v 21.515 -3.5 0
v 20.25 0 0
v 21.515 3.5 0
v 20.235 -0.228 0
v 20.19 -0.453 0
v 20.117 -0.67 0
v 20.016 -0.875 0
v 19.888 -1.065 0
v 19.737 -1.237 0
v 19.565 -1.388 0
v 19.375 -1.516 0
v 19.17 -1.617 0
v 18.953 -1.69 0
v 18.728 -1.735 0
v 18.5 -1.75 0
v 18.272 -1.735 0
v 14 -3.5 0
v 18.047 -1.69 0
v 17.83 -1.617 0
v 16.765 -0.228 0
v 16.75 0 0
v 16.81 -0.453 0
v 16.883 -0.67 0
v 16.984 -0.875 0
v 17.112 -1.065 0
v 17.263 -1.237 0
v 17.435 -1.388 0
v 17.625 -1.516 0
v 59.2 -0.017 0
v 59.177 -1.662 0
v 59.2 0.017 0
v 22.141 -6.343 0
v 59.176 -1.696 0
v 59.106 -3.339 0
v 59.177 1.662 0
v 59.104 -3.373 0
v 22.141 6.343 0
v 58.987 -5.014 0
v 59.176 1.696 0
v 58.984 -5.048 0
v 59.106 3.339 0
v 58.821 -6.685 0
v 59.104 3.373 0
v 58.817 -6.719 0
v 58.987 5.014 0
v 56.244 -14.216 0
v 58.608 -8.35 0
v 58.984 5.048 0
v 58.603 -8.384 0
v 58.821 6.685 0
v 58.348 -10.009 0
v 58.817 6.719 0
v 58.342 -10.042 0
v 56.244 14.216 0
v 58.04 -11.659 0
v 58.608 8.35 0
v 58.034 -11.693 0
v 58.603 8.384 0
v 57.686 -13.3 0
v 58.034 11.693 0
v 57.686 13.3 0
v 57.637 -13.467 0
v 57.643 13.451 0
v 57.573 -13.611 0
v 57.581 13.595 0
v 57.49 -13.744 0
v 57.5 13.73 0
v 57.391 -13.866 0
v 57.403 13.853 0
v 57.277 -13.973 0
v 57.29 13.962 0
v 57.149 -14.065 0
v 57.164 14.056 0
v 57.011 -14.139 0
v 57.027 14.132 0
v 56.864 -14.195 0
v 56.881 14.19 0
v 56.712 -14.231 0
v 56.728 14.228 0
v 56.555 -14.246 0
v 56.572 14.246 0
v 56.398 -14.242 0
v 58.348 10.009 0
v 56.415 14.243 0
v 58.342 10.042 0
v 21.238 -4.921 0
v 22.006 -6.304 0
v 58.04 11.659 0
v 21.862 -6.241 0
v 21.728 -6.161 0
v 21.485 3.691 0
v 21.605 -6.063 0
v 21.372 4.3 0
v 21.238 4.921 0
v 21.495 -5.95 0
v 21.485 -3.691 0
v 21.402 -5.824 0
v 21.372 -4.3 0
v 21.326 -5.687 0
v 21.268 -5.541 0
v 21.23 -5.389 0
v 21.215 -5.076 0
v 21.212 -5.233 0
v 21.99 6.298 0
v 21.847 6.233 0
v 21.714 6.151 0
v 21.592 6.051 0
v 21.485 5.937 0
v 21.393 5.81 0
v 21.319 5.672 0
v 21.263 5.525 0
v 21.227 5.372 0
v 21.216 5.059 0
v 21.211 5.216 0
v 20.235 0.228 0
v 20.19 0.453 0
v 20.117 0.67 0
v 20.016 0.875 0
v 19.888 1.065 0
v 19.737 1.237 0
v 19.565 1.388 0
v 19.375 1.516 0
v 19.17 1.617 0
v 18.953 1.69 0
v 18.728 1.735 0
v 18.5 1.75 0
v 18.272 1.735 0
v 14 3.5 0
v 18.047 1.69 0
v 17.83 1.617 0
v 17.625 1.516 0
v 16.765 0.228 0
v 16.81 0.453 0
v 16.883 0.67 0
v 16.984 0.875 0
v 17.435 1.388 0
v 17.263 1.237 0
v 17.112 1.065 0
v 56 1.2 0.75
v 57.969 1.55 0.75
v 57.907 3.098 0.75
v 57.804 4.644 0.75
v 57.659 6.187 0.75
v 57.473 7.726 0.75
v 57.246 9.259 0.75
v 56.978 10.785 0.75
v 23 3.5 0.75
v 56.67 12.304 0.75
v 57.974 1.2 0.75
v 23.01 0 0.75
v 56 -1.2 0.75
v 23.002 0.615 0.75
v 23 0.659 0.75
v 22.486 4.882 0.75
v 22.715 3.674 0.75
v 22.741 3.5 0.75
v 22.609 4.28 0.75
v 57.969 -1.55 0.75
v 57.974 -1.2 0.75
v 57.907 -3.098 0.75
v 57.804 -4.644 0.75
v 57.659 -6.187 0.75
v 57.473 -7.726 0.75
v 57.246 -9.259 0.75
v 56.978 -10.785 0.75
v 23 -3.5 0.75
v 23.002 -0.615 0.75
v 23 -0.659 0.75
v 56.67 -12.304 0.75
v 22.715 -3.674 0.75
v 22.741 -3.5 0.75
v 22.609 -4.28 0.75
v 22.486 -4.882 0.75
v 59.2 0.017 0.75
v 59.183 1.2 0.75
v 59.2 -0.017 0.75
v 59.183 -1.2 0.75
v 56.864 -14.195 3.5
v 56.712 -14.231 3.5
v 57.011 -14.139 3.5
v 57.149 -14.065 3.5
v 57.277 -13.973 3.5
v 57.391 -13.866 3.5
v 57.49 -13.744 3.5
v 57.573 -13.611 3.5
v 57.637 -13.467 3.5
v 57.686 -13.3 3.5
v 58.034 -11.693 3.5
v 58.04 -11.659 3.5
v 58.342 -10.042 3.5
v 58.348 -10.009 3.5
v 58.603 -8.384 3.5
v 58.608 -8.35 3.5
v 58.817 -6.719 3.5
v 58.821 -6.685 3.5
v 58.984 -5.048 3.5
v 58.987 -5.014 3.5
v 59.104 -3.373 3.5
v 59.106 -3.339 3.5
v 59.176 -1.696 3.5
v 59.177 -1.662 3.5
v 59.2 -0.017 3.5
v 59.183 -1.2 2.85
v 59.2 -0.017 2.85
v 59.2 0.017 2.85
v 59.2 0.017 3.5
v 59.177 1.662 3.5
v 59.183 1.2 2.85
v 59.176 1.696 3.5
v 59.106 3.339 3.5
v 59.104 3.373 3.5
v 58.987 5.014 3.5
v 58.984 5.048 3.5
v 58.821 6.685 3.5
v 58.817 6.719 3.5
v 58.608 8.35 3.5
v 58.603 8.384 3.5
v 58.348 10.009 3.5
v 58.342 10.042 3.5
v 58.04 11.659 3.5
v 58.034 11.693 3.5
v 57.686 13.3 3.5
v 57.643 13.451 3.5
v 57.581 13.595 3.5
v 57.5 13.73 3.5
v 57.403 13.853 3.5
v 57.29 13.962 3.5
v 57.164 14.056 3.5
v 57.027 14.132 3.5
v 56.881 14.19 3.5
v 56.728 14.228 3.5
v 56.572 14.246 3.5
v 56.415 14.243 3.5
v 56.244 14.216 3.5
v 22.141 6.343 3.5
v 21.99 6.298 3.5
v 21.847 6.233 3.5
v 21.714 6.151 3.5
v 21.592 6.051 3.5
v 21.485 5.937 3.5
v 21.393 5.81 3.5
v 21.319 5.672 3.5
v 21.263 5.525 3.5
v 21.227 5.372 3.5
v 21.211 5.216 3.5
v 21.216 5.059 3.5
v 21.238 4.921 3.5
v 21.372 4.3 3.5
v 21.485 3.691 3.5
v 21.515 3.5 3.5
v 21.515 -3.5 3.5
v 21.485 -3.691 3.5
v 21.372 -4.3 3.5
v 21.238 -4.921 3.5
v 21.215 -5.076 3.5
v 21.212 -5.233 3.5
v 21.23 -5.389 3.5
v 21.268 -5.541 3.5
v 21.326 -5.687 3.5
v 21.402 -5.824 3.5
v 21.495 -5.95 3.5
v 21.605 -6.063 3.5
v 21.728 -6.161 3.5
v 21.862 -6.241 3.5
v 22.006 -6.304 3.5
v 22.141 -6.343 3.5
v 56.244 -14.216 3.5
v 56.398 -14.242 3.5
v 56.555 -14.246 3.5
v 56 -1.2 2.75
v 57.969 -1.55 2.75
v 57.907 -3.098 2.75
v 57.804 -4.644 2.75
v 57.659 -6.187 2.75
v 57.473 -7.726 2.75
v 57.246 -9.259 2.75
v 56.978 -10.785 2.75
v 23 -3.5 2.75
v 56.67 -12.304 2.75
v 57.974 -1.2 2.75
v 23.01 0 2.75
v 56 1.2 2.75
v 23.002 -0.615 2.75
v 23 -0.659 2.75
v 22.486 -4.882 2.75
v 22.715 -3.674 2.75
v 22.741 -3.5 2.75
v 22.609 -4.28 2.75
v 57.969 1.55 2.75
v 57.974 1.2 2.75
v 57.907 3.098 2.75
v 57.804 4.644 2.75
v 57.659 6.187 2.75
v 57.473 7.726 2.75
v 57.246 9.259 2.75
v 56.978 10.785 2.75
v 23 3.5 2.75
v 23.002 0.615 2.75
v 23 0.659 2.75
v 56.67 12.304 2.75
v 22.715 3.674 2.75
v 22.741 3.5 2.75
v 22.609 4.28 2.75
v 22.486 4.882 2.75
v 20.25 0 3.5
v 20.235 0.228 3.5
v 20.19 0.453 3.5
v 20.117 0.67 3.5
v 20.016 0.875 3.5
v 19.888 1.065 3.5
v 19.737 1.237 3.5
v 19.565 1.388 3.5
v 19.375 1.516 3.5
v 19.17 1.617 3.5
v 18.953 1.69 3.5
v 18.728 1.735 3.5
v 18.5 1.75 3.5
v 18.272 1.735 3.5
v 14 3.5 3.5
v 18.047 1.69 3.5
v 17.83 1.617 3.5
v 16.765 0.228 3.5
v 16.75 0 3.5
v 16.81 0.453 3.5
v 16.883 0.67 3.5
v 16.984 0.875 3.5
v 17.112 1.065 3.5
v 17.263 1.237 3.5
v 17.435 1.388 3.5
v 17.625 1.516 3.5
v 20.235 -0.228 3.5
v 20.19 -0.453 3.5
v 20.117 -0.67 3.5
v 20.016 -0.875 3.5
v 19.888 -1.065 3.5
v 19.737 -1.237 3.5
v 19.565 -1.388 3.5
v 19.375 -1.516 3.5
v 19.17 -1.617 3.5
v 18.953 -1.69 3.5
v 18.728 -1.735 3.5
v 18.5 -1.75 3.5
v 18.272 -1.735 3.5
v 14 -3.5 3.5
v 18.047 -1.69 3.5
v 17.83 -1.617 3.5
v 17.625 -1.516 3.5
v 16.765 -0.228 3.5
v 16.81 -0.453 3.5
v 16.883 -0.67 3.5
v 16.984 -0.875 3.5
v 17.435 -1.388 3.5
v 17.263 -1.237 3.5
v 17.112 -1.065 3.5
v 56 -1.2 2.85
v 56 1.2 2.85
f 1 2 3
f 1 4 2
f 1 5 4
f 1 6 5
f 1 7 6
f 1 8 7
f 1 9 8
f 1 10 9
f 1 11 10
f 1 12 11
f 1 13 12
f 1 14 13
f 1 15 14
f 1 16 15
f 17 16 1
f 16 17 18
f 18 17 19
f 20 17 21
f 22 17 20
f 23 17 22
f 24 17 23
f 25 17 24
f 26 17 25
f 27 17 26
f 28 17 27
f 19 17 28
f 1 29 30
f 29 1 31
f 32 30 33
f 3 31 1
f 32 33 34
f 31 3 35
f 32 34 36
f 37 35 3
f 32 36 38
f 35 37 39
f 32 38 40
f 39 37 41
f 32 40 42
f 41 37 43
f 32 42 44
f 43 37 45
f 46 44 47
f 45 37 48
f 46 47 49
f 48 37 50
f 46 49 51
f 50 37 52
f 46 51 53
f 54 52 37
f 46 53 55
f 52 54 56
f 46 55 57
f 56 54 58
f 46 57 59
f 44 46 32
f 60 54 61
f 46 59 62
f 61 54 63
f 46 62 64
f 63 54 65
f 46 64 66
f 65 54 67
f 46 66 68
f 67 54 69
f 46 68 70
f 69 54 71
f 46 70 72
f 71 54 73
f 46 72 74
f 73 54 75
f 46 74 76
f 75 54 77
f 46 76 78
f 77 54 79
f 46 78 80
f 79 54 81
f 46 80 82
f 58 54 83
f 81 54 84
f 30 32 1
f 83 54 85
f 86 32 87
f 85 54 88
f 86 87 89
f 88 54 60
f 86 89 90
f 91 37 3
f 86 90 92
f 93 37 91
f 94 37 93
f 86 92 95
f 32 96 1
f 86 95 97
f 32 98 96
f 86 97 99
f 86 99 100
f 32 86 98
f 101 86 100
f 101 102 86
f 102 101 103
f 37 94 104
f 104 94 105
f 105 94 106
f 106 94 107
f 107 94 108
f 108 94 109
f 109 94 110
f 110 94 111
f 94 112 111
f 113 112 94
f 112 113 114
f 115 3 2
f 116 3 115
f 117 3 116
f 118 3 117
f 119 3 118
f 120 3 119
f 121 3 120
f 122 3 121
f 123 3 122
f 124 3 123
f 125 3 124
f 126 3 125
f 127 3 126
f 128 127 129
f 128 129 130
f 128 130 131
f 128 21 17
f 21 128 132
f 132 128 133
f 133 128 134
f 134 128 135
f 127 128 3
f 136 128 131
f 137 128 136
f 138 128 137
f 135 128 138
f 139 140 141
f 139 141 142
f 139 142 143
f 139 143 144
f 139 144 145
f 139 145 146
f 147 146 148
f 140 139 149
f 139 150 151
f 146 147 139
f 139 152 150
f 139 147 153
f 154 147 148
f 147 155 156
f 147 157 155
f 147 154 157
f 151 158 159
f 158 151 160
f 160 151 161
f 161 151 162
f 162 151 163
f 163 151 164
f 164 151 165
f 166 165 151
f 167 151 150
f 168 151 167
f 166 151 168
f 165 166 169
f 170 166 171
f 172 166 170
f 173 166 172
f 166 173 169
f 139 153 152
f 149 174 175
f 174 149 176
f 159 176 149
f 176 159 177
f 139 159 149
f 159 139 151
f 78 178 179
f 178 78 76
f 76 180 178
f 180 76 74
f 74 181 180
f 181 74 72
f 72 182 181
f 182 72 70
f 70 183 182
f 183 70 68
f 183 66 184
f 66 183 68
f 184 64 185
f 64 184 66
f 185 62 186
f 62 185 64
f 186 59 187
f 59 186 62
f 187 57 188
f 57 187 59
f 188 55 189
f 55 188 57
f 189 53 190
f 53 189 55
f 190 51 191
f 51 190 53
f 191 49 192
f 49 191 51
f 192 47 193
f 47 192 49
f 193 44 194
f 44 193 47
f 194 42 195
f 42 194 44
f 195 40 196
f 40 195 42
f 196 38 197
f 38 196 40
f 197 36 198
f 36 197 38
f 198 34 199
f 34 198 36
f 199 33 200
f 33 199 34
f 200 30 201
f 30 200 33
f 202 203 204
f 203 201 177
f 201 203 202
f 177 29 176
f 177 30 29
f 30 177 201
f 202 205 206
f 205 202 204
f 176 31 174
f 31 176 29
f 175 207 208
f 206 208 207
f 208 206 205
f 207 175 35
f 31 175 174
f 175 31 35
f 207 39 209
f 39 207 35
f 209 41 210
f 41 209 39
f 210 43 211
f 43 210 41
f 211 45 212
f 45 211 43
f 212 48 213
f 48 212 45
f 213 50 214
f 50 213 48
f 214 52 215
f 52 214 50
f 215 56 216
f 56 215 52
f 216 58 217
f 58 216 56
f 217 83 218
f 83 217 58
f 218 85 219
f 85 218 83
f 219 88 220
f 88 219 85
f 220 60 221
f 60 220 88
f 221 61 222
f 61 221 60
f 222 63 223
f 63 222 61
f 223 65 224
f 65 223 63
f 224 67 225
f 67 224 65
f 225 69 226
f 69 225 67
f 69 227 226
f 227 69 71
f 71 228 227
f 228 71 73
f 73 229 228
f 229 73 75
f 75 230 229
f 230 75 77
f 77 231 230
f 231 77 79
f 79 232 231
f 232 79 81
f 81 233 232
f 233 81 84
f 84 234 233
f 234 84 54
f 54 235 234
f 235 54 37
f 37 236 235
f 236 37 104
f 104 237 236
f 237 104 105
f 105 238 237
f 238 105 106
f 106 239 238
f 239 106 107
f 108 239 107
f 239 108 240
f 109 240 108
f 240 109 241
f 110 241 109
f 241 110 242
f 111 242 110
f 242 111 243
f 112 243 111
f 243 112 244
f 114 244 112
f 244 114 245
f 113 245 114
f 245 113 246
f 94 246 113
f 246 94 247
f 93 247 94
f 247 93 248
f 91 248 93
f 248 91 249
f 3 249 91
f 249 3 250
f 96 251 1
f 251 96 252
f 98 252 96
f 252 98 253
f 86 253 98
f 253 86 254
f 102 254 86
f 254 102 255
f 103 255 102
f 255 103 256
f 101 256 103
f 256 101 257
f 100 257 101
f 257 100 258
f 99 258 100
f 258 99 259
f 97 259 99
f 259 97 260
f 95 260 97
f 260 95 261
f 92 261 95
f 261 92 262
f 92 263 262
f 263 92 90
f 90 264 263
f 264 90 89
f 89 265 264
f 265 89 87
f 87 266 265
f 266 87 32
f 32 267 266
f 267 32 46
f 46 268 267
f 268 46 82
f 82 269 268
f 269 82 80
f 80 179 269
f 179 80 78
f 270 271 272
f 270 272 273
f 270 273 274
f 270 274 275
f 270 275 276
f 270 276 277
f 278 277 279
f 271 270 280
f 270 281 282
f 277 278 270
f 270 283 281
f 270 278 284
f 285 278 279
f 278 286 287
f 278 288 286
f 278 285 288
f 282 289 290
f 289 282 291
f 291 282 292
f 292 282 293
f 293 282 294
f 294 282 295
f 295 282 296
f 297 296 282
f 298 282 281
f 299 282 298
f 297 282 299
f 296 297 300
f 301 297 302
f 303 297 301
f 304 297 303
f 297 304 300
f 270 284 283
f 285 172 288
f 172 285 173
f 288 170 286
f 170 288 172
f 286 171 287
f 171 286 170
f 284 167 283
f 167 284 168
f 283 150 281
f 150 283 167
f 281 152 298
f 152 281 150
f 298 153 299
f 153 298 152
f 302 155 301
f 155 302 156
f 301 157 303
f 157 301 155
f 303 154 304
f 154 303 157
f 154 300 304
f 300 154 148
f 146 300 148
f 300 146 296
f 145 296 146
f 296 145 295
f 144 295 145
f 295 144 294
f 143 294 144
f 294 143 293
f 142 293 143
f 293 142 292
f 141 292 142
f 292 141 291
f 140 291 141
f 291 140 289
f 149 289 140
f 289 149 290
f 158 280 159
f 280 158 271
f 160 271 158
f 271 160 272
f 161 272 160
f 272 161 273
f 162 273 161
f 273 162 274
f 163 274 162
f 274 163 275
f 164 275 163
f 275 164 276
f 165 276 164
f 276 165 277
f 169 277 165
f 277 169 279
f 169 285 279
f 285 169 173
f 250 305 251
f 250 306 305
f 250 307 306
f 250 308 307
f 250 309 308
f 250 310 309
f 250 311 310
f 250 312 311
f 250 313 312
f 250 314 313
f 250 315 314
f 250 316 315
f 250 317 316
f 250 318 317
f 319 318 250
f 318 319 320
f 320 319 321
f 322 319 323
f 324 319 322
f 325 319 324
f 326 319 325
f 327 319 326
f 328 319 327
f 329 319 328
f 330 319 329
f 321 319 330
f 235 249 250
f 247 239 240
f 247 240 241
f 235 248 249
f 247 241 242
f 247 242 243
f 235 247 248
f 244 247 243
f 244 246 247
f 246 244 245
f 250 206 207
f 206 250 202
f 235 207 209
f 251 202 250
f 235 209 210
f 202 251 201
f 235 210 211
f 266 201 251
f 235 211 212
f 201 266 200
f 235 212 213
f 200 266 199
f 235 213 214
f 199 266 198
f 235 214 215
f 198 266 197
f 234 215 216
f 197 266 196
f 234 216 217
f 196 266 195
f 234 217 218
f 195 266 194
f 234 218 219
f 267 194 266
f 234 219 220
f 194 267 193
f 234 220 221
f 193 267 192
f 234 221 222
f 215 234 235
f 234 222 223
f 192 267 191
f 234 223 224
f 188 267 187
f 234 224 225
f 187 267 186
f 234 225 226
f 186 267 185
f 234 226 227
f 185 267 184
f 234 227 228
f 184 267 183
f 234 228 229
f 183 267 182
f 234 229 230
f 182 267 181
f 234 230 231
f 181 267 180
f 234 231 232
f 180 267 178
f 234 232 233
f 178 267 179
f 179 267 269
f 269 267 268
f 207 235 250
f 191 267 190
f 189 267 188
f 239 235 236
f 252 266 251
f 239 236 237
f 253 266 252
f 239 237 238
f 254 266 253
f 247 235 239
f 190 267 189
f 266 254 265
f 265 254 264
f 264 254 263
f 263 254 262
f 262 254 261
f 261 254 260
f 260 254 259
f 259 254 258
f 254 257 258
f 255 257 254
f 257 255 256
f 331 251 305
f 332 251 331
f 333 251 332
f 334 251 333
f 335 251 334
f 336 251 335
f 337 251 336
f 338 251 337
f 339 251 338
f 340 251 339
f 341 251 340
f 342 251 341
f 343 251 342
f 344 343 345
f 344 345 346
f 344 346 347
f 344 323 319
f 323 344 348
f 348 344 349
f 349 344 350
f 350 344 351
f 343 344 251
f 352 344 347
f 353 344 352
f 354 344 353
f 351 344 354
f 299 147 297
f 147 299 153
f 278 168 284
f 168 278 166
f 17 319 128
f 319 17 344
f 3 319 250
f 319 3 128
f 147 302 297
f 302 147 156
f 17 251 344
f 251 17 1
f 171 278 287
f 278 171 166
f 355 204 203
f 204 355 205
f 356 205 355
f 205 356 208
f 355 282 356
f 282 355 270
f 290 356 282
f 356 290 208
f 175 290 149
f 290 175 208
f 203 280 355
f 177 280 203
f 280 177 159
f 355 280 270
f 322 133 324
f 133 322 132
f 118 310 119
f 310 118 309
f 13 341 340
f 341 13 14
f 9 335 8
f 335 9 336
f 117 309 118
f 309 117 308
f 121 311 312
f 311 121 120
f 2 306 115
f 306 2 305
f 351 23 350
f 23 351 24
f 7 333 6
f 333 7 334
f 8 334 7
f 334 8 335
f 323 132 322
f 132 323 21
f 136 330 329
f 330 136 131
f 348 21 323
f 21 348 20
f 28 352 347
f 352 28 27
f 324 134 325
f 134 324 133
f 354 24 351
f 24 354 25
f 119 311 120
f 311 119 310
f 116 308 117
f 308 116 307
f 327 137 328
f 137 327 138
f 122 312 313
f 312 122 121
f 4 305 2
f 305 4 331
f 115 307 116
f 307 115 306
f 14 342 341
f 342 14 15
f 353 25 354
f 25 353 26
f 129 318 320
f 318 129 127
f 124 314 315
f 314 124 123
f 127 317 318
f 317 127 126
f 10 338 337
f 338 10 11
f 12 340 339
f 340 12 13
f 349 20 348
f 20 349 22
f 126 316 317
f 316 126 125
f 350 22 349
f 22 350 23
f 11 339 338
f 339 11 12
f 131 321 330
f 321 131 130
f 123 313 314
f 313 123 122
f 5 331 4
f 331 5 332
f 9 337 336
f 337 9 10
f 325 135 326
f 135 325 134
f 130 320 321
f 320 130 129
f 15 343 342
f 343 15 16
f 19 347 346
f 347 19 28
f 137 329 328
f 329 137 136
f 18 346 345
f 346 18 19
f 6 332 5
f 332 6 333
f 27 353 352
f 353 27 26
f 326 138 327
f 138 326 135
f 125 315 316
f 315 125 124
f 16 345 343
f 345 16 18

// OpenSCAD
// file: parameters.scad
// =============================================================================
// Gen-V Dual-rotor NANO-GAP AFPM — WOUND-AWARE parameters (HARD GATE)
// PRIMARY challenger vs Gen-S. Thinner m2m + more copper (140 t).
// =============================================================================

// --- Wire / wind budget (26 AWG, ~1 lb spool ≈ 390 m bare-equiv) --------------
wire_awg            = 26;
wire_od             = 0.45;     // insulated OD mm
turns               = 140;      // +10 vs Gen-S
fill                = 0.70;
layers_per_face     = 2;        // axial layers proud of EACH flange
wind_build_axial    = layers_per_face * wire_od * fill;   // 0.63 mm
wind_build_radial   = 3 * wire_od * fill;                 // 0.945 mm

// --- Pancake former (bare STL) — thinner web/flange than Gen-S ---------------
coil_id_r           = 23.0;     // larger window vs Gen-S 24–56
coil_od_r           = 58.0;
span_deg            = 26.0;     // 12 stations × 30° pitch
former_web          = 2.0;
flange_t            = 0.75;
wall                = 1.2;
slot_w              = 2.4;
mount_hole          = 3.5;
tab_len             = 7.0;

former_bare_h       = former_web + 2 * flange_t;            // 3.5 mm
coil_envelope_h     = former_bare_h + 2 * wind_build_axial; // 4.76 mm

// --- Running clearance (magnet face → WOUND face) EACH side ------------------
run_clear           = 0.70;     // PASS ≥ 0.70 (prefer ≥0.70)
gap_spacer_h        = run_clear + wind_build_axial;         // 1.33 mm
m2m                 = coil_envelope_h + 2 * run_clear;      // 6.16 mm (beats Gen-S 6.66)

// --- Mid stator (12 pancakes 3φ; winds proud both faces) ---------------------
coil_stations       = 12;
bay_r_in            = coil_id_r - 2.0 - wind_build_radial;
bay_r_out           = coil_od_r + 2.0 + wind_build_radial;
bay_span            = span_deg + 4.0;
bay_offset          = 2.0;
stator_thick        = former_bare_h;                        // winds proud ±Z
stator_od           = 156.0;
shaft_clear_stator  = 36.0;
coil_mount_r        = 28.0;

// --- Rotors (×2) — 8×Ø20 + 24×Ø5 Halbach each face ---------------------------
large_pocket_d      = 20.3;
small_pocket_d      = 5.3;
pocket_h            = 5.2;
large_n             = 8;
R_large             = 52.0;
R_small_inner       = 40.0;
R_small_mid         = 52.0;
R_small_outer       = 64.0;
carrier_od          = 152.0;
carrier_thick       = 7.5;
hub_h               = 10.0;
hub_od              = 30.0;
rotor_b_offset_deg  = 22.5;

// --- Modular MAX interface (Gen-E family) ------------------------------------
shaft_bore          = 8.35;
bearing_d           = 21.85;
bearing_h           = 7.2;
m3_clear            = 3.5;
bolt_r_inner        = 36.0;
bolt_n_inner        = 6;
flange_bolt_r       = 72.0;
flange_bolt_n       = 6;
brace_r             = 68.0;
brace_d             = 4.3;
brace_n             = 4;

spacer_pad_od       = 14.0;
spacer_pad_id       = m3_clear;
endbell_od          = 156.0;
endbell_thick       = 8.0;
endbell_shaft_clear = 10.0;

$fn = 64;
// main file
// Gen-V pancake former — print ×12
// WOUND: wind_build_axial=0.63, coil_envelope_h=4.76, magnet↔wound=0.7
include <parameters.scad>;
$fn = 48;

module sector_2d(r_in, r_out, ang) {
    polygon([
        for (a = [-ang/2 : ang/16 : ang/2]) [r_in*cos(a), r_in*sin(a)],
        for (a = [ang/2 : -ang/16 : -ang/2]) [r_out*cos(a), r_out*sin(a)]
    ]);
}
module flange() {
    linear_extrude(flange_t) offset(r=wall) sector_2d(coil_id_r, coil_od_r, span_deg);
}
difference() {
    union() {
        flange();
        translate([0, 0, flange_t])
            linear_extrude(former_web)
                difference() {
                    offset(r=wall) sector_2d(coil_id_r, coil_od_r, span_deg);
                    sector_2d(coil_id_r + 0.01, coil_od_r - 0.01, span_deg - 1.5);
                }
        translate([0, 0, flange_t + former_web]) flange();
        translate([coil_id_r - tab_len - 2, -3.5, 0])
            cube([tab_len + 2, 7, former_bare_h]);
    }
    translate([coil_od_r - 2, -slot_w/2, flange_t])
        cube([wall + 4, slot_w, former_web + 0.1]);
    translate([coil_id_r - tab_len/2 - 1, 0, -0.1])
        cylinder(d=mount_hole, h=former_bare_h + 1);
}
